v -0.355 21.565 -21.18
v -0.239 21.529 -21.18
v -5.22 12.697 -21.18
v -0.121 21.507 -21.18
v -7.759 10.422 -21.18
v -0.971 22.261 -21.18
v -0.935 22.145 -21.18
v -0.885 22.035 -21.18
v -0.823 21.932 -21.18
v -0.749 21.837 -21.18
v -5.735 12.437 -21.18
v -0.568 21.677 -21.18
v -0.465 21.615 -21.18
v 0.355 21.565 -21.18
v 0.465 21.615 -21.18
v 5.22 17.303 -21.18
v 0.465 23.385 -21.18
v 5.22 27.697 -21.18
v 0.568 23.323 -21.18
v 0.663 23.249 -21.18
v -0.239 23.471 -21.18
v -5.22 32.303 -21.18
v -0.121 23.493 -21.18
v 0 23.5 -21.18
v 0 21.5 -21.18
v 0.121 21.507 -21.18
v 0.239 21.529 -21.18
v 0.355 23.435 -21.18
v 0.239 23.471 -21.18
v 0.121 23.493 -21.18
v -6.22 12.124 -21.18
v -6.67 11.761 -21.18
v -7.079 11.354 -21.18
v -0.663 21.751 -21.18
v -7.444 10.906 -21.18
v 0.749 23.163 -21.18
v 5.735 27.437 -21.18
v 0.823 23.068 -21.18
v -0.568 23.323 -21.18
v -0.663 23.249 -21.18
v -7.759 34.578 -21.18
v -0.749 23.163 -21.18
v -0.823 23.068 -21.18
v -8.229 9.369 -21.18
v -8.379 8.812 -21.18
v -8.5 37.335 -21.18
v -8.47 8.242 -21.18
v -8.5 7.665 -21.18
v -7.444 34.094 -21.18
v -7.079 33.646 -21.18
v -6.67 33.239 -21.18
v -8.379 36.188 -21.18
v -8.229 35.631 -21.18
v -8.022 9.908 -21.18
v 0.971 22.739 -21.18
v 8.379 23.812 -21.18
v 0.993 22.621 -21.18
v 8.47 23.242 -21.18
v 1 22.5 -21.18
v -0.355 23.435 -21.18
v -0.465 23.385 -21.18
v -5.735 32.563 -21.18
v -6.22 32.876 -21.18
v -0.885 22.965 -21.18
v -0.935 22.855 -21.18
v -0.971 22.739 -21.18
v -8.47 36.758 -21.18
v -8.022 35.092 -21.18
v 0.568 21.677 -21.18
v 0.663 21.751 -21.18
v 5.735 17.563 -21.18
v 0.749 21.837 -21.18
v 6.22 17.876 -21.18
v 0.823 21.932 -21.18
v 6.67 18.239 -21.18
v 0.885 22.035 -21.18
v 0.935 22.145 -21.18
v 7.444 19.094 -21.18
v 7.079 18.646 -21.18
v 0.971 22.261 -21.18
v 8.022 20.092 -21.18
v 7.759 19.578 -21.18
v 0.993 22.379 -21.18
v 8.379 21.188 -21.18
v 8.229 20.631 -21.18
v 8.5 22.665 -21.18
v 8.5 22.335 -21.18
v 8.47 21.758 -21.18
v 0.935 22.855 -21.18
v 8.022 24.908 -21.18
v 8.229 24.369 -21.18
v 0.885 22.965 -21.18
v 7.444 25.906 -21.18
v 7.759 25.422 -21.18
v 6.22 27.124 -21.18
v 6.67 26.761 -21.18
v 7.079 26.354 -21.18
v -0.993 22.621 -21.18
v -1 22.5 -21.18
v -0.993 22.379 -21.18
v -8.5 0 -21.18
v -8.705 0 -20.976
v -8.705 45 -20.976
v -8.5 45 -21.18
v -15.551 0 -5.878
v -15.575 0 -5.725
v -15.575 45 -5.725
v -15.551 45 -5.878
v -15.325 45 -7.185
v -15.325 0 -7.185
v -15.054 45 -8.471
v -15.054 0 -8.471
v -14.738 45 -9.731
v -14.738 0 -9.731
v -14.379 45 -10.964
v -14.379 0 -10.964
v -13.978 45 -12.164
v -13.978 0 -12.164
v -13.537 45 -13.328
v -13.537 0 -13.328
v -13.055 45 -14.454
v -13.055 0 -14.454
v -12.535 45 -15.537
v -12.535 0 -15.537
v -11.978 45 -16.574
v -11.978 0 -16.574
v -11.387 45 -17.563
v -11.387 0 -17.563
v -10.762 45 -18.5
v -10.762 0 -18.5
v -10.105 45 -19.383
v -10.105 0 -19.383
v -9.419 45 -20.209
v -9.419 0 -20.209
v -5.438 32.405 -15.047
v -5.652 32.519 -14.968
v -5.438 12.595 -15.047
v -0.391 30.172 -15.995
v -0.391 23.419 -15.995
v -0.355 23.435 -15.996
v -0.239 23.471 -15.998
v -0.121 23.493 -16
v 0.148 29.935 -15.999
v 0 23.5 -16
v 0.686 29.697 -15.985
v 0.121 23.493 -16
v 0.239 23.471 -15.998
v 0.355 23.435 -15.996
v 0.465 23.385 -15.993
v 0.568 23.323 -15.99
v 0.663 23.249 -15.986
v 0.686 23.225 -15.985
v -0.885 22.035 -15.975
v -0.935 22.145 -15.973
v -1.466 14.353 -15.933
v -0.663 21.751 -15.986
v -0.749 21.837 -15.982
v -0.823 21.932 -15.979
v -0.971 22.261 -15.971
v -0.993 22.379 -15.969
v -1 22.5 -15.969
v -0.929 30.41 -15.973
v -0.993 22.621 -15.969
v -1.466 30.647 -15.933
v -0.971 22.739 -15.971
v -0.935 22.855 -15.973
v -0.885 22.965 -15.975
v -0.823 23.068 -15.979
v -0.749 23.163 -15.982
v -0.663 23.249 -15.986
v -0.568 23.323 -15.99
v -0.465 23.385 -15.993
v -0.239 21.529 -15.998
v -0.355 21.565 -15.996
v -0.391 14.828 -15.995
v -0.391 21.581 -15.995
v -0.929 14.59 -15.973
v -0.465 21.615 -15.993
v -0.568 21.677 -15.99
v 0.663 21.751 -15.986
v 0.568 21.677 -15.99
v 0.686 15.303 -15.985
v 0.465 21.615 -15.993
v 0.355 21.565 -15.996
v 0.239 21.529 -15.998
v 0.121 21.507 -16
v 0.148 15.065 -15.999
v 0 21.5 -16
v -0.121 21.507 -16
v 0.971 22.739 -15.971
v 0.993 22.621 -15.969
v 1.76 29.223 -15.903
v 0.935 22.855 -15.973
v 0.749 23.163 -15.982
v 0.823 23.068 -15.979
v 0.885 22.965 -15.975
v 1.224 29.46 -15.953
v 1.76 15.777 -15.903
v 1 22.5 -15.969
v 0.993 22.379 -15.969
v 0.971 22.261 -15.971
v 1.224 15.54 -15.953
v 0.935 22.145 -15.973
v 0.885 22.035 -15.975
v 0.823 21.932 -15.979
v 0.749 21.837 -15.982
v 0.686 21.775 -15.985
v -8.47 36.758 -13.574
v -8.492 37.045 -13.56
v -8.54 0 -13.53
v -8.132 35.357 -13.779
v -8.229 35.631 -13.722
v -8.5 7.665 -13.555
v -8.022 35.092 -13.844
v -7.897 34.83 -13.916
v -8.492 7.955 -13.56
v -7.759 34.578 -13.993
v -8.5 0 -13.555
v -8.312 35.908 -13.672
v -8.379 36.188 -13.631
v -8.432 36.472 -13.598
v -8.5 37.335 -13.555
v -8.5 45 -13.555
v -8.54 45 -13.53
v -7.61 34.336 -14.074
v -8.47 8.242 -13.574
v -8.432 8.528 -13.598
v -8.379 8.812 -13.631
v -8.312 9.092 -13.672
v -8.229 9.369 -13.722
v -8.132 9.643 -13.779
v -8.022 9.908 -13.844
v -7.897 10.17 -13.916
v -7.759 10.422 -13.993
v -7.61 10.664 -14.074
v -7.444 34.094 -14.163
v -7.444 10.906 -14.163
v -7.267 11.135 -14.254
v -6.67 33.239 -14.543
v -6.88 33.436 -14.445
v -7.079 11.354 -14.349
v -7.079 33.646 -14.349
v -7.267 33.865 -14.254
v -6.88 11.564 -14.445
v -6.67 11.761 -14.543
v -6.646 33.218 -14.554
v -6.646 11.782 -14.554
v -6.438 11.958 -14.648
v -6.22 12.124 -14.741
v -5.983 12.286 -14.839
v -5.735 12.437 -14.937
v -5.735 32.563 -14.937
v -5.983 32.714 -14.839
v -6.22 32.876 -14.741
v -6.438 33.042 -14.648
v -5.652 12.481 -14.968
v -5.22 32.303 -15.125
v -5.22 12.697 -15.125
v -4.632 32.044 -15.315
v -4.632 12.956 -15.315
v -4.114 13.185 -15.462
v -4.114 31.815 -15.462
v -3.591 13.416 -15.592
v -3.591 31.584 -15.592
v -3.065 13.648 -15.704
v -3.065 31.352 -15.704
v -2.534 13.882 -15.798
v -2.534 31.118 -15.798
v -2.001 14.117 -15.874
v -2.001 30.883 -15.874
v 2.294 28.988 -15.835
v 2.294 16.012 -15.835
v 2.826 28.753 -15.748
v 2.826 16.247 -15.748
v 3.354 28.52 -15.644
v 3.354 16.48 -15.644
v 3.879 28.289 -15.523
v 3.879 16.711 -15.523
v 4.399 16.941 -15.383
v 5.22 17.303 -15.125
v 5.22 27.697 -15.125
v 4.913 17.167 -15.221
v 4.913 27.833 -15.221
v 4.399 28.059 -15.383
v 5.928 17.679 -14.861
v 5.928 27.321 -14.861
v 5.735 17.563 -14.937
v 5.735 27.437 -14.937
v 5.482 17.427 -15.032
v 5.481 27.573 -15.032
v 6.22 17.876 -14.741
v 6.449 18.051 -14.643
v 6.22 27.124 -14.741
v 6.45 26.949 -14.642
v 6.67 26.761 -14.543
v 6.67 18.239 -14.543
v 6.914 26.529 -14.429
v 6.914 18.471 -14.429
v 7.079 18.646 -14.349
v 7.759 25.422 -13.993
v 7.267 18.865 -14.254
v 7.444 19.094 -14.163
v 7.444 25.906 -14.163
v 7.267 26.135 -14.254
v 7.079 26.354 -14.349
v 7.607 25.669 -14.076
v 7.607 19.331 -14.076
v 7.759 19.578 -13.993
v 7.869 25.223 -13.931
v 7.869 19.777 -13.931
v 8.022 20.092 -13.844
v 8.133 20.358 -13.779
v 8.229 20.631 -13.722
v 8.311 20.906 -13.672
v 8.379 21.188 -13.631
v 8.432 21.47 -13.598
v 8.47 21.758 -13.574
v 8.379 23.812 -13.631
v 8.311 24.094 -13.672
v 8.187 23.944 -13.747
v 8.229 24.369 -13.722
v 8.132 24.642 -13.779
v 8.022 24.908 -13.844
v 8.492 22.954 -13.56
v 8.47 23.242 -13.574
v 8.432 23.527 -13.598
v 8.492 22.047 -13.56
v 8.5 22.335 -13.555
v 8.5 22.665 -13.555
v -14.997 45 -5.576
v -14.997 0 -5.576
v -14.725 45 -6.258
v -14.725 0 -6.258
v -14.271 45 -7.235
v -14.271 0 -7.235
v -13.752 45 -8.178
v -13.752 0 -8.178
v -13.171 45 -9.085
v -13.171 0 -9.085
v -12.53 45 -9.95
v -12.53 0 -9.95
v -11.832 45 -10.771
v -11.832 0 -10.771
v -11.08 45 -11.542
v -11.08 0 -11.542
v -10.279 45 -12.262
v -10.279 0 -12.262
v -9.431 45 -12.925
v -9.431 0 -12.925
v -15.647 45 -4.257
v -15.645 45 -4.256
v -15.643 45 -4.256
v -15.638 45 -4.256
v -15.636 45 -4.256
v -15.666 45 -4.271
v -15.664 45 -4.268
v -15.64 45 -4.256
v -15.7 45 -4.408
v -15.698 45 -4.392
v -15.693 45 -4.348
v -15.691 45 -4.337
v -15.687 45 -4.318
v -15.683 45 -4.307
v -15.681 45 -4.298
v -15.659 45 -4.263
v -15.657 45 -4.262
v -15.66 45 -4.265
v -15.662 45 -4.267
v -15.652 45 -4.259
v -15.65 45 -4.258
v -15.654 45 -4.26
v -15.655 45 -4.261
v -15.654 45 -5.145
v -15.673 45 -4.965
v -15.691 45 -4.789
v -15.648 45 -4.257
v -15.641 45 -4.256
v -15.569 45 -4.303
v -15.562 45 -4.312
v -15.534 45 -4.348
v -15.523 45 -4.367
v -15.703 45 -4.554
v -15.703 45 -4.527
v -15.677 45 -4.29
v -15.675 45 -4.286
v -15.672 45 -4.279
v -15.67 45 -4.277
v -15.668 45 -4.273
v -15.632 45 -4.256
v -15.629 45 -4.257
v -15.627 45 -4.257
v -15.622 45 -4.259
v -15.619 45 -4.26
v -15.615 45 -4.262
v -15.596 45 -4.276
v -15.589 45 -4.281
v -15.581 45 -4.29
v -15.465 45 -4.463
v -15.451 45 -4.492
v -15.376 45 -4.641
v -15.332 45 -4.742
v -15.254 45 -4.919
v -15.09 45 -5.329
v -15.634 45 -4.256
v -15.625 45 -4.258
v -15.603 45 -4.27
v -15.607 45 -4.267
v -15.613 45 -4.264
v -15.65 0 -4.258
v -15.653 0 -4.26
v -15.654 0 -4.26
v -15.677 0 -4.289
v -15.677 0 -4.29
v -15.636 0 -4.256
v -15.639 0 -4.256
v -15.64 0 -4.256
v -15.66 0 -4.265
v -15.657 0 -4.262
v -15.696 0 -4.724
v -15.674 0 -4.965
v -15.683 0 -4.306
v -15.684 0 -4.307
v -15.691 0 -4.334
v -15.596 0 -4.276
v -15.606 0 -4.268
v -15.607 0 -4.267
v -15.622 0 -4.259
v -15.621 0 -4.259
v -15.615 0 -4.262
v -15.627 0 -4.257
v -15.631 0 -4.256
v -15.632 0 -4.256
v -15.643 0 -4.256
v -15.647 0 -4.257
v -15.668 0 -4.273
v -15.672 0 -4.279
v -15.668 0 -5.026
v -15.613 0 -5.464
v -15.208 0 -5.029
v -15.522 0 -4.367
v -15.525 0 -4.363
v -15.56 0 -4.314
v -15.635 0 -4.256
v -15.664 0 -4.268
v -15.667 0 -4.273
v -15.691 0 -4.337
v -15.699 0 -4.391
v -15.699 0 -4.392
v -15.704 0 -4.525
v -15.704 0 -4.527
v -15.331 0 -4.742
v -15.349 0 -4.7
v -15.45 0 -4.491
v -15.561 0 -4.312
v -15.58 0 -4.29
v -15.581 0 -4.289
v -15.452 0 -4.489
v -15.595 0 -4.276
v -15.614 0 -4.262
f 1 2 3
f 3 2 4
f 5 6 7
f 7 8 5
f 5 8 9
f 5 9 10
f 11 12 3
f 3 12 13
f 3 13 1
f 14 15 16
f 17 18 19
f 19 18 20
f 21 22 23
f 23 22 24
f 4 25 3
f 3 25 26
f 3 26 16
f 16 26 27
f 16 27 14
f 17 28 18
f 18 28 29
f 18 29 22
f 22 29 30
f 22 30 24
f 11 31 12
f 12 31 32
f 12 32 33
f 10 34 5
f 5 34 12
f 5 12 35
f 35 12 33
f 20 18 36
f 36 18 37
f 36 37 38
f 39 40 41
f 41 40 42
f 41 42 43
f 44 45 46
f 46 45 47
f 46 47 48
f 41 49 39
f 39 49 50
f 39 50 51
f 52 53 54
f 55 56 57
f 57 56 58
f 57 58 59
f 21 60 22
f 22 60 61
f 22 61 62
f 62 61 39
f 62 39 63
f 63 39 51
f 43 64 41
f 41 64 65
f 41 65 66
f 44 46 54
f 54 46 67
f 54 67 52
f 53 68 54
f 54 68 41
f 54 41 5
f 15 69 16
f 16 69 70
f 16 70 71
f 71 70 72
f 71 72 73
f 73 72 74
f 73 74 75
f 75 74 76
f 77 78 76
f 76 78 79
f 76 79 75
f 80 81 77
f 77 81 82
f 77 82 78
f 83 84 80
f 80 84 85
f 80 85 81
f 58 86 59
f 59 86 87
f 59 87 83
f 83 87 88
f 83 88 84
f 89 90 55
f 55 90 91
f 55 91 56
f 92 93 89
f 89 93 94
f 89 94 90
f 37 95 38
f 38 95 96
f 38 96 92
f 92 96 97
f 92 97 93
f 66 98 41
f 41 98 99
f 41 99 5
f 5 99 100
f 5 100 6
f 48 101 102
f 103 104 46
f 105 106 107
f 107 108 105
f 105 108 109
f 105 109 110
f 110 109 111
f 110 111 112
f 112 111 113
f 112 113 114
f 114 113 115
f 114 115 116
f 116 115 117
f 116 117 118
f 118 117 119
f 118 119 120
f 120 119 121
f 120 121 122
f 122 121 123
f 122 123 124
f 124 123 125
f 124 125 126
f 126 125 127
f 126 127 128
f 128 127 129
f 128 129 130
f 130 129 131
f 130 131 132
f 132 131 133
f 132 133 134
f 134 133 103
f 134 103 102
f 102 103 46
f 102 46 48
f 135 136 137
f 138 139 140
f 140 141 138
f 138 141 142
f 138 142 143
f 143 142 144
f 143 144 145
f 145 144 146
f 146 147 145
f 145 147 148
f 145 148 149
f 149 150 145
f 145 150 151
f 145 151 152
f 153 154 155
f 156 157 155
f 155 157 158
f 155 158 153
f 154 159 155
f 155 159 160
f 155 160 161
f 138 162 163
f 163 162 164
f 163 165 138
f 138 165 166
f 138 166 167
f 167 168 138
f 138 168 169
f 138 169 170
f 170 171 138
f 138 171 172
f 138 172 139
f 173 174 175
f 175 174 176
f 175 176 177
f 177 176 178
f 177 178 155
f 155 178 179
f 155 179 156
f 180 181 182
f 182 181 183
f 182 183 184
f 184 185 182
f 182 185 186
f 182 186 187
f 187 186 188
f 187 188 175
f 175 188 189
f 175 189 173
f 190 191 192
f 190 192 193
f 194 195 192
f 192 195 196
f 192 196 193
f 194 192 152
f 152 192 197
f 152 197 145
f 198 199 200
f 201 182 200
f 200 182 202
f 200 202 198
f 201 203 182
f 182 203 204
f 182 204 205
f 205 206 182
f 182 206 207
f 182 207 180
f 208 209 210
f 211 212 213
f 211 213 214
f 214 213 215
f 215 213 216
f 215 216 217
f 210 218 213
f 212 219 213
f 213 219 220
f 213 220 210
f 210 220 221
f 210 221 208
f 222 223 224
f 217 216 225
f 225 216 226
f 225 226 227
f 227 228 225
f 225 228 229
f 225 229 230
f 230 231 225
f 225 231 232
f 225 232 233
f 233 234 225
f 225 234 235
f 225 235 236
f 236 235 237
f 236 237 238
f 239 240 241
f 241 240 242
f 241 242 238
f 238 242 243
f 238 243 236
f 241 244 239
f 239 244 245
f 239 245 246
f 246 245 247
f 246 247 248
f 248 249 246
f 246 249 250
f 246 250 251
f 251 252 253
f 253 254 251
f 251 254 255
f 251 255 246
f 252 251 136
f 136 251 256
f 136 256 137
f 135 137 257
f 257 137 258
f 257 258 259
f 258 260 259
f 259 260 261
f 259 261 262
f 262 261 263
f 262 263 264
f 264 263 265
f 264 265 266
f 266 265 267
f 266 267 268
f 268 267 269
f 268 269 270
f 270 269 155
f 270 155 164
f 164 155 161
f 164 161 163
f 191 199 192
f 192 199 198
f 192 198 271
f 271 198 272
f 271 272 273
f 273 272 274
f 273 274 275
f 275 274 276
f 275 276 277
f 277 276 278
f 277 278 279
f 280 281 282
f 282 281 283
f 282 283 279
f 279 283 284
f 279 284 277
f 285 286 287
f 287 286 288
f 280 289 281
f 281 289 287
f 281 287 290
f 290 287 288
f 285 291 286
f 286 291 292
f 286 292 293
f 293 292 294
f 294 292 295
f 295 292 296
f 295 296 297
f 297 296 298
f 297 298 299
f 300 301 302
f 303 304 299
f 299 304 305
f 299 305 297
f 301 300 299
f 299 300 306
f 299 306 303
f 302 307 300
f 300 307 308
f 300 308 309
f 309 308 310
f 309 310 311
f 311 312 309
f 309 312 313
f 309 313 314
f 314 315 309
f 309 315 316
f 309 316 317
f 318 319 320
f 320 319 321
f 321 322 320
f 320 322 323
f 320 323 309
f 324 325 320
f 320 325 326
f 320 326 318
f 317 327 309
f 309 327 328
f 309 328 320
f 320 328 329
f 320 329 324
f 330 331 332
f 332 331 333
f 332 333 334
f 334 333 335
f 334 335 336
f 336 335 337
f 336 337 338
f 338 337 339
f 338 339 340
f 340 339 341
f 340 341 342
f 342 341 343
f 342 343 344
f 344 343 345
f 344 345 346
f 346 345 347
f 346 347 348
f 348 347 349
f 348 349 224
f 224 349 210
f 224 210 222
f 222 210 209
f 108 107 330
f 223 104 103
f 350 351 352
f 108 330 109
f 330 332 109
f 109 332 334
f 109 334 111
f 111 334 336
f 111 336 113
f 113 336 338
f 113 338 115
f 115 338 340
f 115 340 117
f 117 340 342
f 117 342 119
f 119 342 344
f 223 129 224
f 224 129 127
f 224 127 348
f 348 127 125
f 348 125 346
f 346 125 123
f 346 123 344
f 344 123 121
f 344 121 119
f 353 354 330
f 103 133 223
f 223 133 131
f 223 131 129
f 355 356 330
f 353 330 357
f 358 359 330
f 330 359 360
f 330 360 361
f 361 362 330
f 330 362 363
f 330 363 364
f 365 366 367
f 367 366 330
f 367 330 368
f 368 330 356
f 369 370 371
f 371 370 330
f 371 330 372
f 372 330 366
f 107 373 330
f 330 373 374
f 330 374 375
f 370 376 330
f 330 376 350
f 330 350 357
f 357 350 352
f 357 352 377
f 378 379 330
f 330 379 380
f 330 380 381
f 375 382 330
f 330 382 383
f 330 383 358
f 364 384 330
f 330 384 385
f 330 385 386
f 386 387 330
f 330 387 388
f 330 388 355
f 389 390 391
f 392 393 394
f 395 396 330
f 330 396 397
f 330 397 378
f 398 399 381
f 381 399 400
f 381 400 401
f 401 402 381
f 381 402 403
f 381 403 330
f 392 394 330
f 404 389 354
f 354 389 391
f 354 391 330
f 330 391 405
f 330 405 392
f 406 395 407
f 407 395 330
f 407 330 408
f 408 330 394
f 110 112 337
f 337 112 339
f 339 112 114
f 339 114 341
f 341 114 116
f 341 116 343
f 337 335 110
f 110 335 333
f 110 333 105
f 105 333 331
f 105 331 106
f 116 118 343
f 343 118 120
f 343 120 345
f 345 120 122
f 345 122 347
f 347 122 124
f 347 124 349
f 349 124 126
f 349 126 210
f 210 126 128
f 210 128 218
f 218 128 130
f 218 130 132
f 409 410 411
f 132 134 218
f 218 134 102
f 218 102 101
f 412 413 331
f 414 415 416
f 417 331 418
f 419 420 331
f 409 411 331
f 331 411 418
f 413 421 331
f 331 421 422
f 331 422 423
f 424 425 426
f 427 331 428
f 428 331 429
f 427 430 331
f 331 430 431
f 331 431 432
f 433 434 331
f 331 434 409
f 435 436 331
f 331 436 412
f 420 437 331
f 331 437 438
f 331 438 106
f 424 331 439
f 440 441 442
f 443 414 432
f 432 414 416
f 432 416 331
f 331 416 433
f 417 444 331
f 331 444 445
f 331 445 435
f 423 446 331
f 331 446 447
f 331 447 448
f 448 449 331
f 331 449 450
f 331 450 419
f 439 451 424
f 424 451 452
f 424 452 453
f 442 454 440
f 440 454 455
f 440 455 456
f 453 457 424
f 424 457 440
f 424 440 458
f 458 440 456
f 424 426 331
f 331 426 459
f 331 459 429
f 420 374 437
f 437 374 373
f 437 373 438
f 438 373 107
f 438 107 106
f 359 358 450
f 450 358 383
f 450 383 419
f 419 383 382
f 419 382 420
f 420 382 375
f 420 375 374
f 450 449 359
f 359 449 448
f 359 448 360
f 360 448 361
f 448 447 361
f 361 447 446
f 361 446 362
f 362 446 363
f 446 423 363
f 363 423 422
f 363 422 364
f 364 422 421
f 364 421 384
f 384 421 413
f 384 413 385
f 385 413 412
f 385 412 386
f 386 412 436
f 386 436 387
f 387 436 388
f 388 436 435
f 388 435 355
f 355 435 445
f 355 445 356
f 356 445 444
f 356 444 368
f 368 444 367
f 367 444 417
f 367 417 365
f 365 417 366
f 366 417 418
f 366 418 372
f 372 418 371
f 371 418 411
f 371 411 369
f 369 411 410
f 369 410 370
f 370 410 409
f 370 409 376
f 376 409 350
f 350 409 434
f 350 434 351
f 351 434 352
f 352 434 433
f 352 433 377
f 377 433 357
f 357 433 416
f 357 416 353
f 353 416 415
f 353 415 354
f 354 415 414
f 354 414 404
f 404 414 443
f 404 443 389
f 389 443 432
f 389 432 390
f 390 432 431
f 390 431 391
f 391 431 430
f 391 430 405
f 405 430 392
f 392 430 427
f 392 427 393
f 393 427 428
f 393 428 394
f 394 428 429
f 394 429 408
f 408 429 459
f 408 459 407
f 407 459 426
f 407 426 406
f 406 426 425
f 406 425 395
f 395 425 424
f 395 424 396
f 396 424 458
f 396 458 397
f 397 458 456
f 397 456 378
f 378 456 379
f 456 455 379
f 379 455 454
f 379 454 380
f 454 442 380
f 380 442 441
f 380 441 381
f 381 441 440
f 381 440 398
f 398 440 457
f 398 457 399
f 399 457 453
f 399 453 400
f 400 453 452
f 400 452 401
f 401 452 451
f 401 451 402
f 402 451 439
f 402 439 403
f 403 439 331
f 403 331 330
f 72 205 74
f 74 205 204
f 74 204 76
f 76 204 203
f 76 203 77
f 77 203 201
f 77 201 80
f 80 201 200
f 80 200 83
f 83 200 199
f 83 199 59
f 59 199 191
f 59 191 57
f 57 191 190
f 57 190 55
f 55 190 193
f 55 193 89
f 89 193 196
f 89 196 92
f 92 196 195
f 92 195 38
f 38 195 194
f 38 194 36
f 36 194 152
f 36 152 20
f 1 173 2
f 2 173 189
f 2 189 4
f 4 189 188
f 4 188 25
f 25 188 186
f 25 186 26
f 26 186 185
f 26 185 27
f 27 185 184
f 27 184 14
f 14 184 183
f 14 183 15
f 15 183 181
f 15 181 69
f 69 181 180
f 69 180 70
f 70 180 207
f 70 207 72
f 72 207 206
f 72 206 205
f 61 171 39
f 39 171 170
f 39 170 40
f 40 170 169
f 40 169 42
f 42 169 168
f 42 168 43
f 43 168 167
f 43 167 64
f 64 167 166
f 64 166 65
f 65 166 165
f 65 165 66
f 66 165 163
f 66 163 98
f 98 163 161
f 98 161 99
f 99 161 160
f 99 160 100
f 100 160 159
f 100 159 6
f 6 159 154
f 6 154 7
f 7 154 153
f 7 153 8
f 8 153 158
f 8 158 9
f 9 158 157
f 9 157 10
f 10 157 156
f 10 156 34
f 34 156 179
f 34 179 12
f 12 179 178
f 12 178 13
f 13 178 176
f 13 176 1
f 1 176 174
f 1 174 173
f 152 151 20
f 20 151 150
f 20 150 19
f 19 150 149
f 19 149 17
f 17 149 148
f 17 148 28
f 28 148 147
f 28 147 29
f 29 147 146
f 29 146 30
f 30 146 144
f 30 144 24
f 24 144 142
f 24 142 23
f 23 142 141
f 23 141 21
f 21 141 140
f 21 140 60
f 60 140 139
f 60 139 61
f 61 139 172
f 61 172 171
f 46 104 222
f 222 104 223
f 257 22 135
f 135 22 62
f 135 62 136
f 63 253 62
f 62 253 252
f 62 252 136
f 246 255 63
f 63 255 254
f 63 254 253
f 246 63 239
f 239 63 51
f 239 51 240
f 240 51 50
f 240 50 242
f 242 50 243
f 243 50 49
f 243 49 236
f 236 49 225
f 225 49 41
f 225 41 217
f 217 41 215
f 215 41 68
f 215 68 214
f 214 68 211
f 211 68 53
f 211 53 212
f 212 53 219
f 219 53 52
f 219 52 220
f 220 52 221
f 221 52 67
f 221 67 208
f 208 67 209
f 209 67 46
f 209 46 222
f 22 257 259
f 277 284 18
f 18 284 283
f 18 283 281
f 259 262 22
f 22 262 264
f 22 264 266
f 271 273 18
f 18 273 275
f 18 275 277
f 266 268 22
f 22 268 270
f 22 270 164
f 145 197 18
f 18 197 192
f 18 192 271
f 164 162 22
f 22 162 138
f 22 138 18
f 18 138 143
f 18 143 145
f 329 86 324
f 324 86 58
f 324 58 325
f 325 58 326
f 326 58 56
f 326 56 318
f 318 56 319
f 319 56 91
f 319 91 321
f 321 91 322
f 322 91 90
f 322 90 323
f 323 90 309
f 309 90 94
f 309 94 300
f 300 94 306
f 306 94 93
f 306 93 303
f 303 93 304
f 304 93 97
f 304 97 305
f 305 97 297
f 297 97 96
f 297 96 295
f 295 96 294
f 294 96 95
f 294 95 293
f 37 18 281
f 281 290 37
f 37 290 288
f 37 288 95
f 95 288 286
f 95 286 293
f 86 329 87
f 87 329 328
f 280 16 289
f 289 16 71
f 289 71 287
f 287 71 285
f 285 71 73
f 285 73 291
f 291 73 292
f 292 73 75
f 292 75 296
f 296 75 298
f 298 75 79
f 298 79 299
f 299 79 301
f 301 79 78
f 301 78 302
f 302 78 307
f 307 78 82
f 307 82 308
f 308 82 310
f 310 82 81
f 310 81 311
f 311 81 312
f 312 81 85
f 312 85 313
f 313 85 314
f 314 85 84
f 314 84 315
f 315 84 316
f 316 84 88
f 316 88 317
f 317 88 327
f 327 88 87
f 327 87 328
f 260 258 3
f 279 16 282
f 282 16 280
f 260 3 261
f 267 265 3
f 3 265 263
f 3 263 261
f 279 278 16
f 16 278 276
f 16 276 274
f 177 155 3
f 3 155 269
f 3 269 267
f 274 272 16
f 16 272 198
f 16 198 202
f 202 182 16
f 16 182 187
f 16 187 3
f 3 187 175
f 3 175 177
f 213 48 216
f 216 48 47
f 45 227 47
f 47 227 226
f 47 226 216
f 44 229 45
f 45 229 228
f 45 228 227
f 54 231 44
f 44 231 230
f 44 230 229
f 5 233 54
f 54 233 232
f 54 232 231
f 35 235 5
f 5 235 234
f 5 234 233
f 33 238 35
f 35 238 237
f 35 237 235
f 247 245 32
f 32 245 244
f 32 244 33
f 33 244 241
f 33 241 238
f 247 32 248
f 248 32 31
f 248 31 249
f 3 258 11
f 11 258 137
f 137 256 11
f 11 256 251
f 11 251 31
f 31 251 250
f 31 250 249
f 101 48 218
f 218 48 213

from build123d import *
from OCP.BRepAlgoAPI import BRepAlgoAPI_Cut
from OCP.TopTools import TopTools_ListOfShape

# Parameters (mm, degrees)
BOSS_EXTRUDE1_DEPTH = 45
FILLET1_START       = -1
FILLET1_DEPTH       = 47
SKETCH2_R           = 1
CUT_EXTRUDE3_DEPTH  = 30


with BuildPart() as part:
    # Sketch1 → Boss-Extrude1 (new body)
    with BuildSketch(Plane(origin=(0, 0, 0), x_dir=(1, 0, 0), z_dir=(0, 1, 0))):
        with BuildLine():
            add(Edge.make_bspline(
                [(-8.5, 21.180377675), (-16, 13.832083379), (-16, 0)],
                knots=[0.560075306, 0.560075306, 0.560075306, 1.570796327, 1.570796327, 1.570796327], degree=2, weights=[1, 0.875, 1]))
            ThreePointArc((-16, 0), (0, 16), (16, 0))
            add(Edge.make_bspline(
                [(16, 0), (16, 13.832083379), (8.5, 21.180377675)],
                knots=[4.71238898, 4.71238898, 4.71238898, 5.723110001, 5.723110001, 5.723110001], degree=2, weights=[1, 0.875, 1]))
            Line((8.5, 21.180377675), (-8.5, 21.180377675))
        make_face()
    extrude(amount=BOSS_EXTRUDE1_DEPTH)


with BuildPart() as fillet1_tool:
    # Fillet1: read off the stored shape, not the designer's step
    # Fillet1 outline → Fillet1 (new body)
    with BuildSketch(Plane(origin=(0, 0, 0), x_dir=(1, 0, 0), z_dir=(0, 1, 0)).offset(FILLET1_START)):
        with BuildLine():
            ThreePointArc((-16, 0), (-15.747238962, 2.832748677), (-14.996941867, 5.575996291))
            add(Edge.make_bspline(
                [(-14.996941867, 5.575996291), (-16.005804346, 2.862606405), (-15.574790718, 5.72521281)],
                knots=[0, 0, 0, 1, 1, 1], degree=2))
            add(Edge.make_bspline(
                [(-15.574790718, 5.72521281), (-16, 2.901156362), (-16, 0)],
                knots=[1.335570419, 1.335570419, 1.335570419, 1.570796327, 1.570796327, 1.570796327], degree=2, weights=[0.955358207, 0.97090865, 1]))
        make_face()
        with BuildLine():
            add(Edge.make_bspline(
                [(15.574790718, 5.72521281), (16.005804346, 2.862606405), (14.996941867, 5.575996291)],
                knots=[0, 0, 0, 1, 1, 1], degree=2))
            ThreePointArc((14.996941867, 5.575996291), (15.747238962, 2.832748677), (16, 0))
            add(Edge.make_bspline(
                [(16, 0), (16, 2.901156362), (15.574790718, 5.72521281)],
                knots=[4.71238898, 4.71238898, 4.71238898, 4.947614888, 4.947614888, 4.947614888], degree=2, weights=[1, 0.97090865, 0.955358207]))
        make_face()
    extrude(amount=FILLET1_DEPTH)


with BuildPart() as part_1:
    add(part.part)

    # Fillet1: cut by fillet1_tool, with a tolerance
    fillet1_stock = TopTools_ListOfShape()
    fillet1_stock.Append(part_1.part.wrapped)
    fillet1_tools = TopTools_ListOfShape()
    fillet1_tools.Append(fillet1_tool.part.wrapped)
    fillet1_cut = BRepAlgoAPI_Cut()
    fillet1_cut.SetArguments(fillet1_stock)
    fillet1_cut.SetTools(fillet1_tools)
    fillet1_cut.SetFuzzyValue(0.00001)
    fillet1_cut.Build()
    add(Compound.cast(fillet1_cut.Shape()).solids(), mode=Mode.REPLACE)

    # Sketch2 → Cut-Extrude3 (cut)
    # profile 1 of 6: a face of its own
    with BuildSketch(Plane(origin=(0, 0, -21.180377675), x_dir=(-1, 0, 0), z_dir=(0, 0, -1))):
        Polygon((-8.5, 22.33499841), (-8.5, 22.66500159), (-8.5, 45), (-34.986586565, 45), (-34.986586565, 0), (-8.5, 0), align=None)
    # profile 2 of 6: a face of its own
    with BuildSketch(Plane(origin=(0, 0, -21.180377675), x_dir=(-1, 0, 0), z_dir=(0, 0, -1))):
        with BuildLine():
            ThreePointArc((-8.5, 22.66500159), (-7.607608721, 25.668323397), (-5.220021136, 27.697049499))
            Line((-5.220021136, 27.697049499), (5.220021136, 32.302950501))
            ThreePointArc((5.220021136, 32.302950501), (7.607608721, 34.331676603), (8.5, 37.33499841))
            Line((8.5, 37.33499841), (8.5, 45))
            Line((8.5, 45), (-8.5, 45))
            Line((-8.5, 45), (-8.5, 22.66500159))
        make_face()
        with Locations((0, 37.5)):
            Circle(SKETCH2_R, mode=Mode.SUBTRACT)
    # profile 3 of 6: a face of its own
    with BuildSketch(Plane(origin=(0, 0, -21.180377675), x_dir=(-1, 0, 0), z_dir=(0, 0, -1))):
        with Locations((0, 37.5)):
            Circle(SKETCH2_R)
    # profile 4 of 6: a face of its own
    with BuildSketch(Plane(origin=(0, 0, -21.180377675), x_dir=(-1, 0, 0), z_dir=(0, 0, -1))):
        with Locations((0, 22.5)):
            Circle(SKETCH2_R)
    # profile 5 of 6: a face of its own
    with BuildSketch(Plane(origin=(0, 0, -21.180377675), x_dir=(-1, 0, 0), z_dir=(0, 0, -1))):
        with BuildLine():
            ThreePointArc((-5.220021136, 17.302950501), (-7.607608721, 19.331676603), (-8.5, 22.33499841))
            Line((-8.5, 22.33499841), (-8.5, 0))
            Line((-8.5, 0), (8.5, 0))
            Line((8.5, 0), (8.5, 7.66500159))
            ThreePointArc((8.5, 7.66500159), (7.607608721, 10.668323397), (5.220021136, 12.697049499))
            Line((5.220021136, 12.697049499), (-5.220021136, 17.302950501))
        make_face()
        with Locations((0, 7.5)):
            Circle(SKETCH2_R, mode=Mode.SUBTRACT)
    # profile 6 of 6: a face of its own
    with BuildSketch(Plane(origin=(0, 0, -21.180377675), x_dir=(-1, 0, 0), z_dir=(0, 0, -1))):
        with Locations((0, 7.5)):
            Circle(SKETCH2_R)
    extrude(amount=-CUT_EXTRUDE3_DEPTH, mode=Mode.SUBTRACT)


solid = part_1.part
